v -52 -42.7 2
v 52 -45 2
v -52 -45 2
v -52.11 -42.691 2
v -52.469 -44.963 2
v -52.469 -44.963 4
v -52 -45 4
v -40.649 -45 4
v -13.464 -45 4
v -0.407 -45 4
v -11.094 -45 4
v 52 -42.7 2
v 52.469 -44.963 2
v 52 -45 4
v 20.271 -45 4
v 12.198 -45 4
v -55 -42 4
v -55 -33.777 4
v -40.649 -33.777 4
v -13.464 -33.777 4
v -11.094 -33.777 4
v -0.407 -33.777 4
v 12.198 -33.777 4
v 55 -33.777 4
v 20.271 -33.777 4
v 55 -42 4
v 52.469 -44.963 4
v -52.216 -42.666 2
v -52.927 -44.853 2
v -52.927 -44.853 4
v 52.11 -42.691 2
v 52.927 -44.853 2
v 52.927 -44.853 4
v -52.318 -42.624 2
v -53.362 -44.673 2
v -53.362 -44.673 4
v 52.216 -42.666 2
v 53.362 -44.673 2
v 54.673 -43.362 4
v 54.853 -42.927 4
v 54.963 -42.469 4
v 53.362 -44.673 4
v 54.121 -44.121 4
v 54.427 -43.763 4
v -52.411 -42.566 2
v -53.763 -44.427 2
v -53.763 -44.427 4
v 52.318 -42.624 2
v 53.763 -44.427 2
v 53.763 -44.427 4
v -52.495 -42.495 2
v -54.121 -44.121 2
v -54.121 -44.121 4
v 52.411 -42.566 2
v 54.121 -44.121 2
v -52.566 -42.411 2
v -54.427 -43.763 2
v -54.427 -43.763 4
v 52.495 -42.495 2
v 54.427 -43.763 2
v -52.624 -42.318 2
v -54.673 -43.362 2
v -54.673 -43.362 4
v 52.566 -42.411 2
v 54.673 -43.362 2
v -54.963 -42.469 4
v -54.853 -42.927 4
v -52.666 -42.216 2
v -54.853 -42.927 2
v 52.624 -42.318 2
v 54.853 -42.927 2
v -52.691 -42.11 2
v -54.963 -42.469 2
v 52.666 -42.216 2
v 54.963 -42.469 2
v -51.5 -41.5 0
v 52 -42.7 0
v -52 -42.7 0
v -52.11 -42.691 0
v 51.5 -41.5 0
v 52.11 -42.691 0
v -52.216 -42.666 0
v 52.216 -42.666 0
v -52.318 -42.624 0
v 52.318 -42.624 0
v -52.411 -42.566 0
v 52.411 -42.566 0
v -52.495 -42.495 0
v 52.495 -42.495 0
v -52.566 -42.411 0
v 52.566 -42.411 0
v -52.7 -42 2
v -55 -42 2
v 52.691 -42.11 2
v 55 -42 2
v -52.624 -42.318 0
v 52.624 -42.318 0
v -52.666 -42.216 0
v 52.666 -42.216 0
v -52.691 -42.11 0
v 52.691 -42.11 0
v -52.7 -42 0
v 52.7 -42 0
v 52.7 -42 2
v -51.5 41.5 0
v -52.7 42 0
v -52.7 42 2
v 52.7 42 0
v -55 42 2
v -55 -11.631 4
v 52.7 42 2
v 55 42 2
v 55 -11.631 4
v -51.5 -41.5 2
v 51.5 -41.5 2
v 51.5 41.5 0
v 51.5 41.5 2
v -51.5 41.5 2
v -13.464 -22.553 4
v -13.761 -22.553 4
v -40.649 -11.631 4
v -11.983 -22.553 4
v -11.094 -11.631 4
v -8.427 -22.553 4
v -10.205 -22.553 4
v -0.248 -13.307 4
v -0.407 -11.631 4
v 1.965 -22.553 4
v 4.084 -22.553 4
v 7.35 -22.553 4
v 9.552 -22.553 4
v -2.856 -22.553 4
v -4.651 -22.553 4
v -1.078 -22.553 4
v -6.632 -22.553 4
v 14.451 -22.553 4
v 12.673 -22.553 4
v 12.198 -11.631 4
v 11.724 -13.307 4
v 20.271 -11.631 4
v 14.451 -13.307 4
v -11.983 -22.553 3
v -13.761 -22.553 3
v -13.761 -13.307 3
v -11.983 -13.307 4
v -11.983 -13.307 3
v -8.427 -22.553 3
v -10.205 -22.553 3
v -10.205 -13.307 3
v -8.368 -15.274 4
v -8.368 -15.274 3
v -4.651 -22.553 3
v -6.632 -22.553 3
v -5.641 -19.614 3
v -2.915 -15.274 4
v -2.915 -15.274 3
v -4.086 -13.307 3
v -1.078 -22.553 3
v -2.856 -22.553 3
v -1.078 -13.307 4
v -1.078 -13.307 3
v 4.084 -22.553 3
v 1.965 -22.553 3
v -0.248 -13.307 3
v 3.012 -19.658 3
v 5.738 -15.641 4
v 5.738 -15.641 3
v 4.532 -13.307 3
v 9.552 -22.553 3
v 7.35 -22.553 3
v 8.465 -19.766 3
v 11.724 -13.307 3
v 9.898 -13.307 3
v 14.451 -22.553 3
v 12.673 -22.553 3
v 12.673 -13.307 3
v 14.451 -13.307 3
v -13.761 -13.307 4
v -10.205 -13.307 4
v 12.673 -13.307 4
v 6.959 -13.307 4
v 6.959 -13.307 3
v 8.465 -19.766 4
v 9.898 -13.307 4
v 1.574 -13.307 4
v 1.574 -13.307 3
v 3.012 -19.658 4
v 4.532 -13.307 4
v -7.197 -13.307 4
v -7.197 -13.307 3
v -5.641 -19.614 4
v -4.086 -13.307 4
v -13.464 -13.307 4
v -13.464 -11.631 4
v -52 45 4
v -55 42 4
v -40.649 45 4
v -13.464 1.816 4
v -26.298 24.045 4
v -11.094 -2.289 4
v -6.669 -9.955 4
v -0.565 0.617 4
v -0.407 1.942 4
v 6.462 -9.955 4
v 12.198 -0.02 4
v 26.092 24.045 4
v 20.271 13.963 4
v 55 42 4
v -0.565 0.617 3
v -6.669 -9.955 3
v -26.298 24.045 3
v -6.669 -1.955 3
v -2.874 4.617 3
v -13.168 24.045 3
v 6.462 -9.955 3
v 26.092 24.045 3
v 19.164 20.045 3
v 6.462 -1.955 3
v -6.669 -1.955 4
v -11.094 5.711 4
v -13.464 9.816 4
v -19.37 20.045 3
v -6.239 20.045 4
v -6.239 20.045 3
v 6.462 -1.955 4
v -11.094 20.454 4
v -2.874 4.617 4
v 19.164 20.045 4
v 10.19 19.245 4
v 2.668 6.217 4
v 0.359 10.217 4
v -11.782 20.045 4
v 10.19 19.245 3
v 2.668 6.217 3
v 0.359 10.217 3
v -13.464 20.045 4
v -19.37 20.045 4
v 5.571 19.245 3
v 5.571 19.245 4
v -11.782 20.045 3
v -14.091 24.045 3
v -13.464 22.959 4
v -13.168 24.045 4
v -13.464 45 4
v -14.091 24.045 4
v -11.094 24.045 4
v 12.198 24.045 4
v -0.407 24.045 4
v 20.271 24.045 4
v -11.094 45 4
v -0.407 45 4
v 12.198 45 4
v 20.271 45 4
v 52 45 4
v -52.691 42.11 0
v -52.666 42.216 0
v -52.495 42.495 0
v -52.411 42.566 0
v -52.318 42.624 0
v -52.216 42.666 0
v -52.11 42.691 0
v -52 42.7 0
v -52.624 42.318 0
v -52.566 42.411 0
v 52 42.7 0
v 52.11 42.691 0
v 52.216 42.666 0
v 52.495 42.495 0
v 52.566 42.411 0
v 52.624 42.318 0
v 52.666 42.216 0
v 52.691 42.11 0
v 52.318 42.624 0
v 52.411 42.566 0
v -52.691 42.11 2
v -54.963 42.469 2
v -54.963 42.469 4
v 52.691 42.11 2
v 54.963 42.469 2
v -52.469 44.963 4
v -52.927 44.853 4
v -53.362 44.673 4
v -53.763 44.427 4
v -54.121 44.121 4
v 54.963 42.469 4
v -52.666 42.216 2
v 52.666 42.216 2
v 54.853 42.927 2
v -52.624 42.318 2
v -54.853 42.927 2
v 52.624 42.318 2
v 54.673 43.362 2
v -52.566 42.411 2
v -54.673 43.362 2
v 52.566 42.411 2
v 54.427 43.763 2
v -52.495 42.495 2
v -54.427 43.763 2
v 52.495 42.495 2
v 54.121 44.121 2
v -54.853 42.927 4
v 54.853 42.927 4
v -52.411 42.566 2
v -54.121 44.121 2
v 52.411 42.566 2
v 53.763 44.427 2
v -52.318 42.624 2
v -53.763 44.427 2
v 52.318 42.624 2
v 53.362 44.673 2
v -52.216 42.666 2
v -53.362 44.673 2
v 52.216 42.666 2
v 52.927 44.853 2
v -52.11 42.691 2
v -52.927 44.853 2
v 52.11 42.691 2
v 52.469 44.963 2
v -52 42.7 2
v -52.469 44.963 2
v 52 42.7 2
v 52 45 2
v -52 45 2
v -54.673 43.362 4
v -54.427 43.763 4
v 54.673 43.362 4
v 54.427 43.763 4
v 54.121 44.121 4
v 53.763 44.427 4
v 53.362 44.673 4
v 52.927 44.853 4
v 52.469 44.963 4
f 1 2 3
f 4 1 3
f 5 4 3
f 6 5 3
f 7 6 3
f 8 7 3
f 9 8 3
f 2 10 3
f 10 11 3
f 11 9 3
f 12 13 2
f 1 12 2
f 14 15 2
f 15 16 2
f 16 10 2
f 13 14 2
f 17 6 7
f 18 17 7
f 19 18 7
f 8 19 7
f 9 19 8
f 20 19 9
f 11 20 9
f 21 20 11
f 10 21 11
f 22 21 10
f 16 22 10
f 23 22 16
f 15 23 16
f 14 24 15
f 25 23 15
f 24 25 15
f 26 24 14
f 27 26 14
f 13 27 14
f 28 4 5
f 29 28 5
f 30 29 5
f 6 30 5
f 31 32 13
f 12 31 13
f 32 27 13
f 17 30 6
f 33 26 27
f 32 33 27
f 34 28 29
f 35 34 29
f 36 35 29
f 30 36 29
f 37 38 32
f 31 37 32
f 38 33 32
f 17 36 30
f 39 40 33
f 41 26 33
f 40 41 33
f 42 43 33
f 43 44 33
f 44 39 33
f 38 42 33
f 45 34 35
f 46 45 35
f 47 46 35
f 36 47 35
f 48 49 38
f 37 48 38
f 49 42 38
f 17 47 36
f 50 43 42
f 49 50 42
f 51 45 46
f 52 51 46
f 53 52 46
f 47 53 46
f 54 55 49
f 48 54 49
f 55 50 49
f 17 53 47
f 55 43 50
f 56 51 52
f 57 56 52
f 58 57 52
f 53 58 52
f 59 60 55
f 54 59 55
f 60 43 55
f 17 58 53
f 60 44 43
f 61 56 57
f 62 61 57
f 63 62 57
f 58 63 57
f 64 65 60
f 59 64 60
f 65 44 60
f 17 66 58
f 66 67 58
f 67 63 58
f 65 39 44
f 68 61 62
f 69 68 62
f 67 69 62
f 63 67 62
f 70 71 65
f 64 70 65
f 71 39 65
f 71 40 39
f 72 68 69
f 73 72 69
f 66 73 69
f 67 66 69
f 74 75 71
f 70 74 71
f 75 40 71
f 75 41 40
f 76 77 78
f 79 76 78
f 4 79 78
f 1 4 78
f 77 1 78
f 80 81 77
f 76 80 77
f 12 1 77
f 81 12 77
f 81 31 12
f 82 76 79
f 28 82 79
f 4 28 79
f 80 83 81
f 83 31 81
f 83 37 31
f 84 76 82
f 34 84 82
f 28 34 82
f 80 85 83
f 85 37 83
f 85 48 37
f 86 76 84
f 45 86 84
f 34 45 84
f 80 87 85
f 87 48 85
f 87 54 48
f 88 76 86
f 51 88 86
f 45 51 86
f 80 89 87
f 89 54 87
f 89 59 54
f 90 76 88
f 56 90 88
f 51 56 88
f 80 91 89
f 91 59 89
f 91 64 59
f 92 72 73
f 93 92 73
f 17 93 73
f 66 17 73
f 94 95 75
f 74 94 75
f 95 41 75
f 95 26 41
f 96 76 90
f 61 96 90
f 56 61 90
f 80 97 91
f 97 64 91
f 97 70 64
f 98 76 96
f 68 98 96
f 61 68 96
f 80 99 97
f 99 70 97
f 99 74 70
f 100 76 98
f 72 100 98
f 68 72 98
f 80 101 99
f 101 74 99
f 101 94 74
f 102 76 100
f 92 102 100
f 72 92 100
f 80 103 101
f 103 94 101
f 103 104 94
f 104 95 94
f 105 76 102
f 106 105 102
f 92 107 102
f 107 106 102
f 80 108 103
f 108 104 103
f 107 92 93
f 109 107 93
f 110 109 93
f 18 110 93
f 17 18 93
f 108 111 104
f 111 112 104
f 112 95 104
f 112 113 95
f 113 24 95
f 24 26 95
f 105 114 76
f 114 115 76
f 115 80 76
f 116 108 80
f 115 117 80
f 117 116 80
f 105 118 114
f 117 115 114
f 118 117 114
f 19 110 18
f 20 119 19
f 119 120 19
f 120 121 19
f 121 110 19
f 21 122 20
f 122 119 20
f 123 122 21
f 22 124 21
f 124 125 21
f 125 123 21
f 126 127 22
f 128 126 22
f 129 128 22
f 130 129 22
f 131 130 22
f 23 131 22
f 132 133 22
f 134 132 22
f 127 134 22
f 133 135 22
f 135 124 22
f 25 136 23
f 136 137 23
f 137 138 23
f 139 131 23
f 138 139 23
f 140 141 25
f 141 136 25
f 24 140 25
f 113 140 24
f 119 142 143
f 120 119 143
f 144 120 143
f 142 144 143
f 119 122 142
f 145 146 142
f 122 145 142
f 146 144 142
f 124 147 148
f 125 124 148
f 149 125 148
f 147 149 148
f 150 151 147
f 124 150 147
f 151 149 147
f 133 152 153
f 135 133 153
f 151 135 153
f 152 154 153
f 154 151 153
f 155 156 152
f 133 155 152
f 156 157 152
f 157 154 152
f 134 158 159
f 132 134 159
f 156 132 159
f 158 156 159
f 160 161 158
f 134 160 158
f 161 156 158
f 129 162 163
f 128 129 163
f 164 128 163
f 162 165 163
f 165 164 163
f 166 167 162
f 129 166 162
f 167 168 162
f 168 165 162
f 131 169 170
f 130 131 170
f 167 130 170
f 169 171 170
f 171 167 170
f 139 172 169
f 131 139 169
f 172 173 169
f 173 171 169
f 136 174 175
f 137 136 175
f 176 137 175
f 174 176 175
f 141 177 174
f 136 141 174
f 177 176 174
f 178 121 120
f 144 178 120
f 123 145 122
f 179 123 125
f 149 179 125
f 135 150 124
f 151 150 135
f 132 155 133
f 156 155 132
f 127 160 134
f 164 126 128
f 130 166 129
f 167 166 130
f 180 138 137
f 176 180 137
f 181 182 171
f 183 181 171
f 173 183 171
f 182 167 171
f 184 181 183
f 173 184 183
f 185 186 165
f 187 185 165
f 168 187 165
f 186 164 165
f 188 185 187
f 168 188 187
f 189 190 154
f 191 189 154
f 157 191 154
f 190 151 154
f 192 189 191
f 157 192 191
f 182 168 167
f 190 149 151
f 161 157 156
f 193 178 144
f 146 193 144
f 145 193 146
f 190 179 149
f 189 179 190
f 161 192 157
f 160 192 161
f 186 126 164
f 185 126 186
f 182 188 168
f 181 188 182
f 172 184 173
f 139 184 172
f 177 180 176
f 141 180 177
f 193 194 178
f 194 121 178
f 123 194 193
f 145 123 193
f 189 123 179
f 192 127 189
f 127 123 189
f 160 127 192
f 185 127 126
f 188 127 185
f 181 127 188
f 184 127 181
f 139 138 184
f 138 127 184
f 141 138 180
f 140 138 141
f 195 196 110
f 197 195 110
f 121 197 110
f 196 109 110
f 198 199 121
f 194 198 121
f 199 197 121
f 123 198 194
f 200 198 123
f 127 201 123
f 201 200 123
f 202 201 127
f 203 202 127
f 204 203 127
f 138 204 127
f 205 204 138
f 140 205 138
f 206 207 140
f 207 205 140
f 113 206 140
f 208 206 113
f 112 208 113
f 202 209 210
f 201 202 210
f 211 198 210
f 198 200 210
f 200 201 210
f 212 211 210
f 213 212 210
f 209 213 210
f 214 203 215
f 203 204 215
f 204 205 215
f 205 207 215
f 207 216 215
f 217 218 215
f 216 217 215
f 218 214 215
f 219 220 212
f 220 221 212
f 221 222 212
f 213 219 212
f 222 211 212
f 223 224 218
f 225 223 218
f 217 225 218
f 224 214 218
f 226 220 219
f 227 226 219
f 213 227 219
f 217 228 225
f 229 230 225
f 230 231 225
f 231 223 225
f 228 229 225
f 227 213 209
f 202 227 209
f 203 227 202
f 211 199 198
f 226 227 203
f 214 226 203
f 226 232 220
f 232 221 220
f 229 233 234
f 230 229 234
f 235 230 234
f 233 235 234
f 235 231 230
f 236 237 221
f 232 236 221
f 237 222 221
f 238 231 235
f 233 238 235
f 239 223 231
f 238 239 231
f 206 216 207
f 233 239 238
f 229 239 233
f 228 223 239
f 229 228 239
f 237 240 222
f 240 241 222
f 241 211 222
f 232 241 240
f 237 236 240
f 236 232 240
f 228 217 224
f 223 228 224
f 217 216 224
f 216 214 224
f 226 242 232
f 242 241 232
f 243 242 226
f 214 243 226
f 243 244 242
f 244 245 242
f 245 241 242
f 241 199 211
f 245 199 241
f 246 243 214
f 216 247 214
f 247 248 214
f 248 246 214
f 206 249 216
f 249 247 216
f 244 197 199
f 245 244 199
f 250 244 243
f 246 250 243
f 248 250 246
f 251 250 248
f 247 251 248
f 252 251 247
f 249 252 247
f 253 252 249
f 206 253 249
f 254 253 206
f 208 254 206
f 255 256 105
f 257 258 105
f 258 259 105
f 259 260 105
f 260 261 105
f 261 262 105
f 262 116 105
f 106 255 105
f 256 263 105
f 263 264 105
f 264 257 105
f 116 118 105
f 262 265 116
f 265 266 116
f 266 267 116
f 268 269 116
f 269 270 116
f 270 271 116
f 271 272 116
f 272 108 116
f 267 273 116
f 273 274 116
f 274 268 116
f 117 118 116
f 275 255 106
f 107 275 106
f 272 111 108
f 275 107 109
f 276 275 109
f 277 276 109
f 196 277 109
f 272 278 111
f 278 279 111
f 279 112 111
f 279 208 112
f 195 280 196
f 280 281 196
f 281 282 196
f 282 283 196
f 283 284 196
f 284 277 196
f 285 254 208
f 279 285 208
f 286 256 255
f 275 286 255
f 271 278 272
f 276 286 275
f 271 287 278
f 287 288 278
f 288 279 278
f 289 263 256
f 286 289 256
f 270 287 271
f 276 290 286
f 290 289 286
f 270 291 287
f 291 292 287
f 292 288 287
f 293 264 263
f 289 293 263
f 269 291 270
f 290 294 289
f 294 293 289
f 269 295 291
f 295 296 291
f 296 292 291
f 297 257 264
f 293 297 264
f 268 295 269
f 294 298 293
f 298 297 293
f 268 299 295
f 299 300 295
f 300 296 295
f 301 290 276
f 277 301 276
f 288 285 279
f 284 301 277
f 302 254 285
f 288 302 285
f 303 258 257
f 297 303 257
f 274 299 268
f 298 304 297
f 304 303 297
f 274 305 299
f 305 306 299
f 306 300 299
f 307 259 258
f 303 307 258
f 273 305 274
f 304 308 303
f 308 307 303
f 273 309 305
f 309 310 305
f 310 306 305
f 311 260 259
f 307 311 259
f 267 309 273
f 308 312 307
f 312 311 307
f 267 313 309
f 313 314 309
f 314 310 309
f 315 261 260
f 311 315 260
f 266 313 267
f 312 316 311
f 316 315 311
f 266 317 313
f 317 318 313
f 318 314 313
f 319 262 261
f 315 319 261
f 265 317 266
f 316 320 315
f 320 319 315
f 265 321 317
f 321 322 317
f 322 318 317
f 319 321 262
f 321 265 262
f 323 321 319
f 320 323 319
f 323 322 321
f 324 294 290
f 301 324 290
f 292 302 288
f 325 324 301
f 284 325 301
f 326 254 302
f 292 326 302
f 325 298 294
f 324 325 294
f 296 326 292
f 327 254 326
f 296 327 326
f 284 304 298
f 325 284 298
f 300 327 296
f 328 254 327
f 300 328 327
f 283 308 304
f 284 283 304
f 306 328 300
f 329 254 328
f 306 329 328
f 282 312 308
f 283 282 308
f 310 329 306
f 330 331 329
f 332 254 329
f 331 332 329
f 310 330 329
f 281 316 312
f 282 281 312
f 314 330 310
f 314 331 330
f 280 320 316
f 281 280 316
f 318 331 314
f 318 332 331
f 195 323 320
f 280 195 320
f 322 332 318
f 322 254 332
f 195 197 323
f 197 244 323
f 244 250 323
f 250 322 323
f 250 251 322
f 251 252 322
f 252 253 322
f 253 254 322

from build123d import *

# Parameters (mm, degrees)
SKETCH1_W           = 103
SKETCH1_H           = 83
BOSS_EXTRUDE1_DEPTH = 2
BOSS_EXTRUDE3_DEPTH = 2
CUT_EXTRUDE1_DEPTH  = 1
SKETCH5_W           = 1.778066781
SKETCH5_H           = 9.245947266
SKETCH5_W_2         = 1.778066782
CUT_EXTRUDE2_DEPTH  = 1


with BuildPart() as part:
    # Sketch1 → Boss-Extrude1 (new body)
    with BuildSketch(Plane.XY):
        with BuildLine():
            Line((-52.7, 42), (-52.7, -42))
            ThreePointArc((-52.7, -42), (-52.494974747, -42.494974747), (-52, -42.7))
            Line((-52, -42.7), (52, -42.7))
            ThreePointArc((52, -42.7), (52.494974747, -42.494974747), (52.7, -42))
            Line((52.7, -42), (52.7, 42))
            ThreePointArc((52.7, 42), (52.494974747, 42.494974747), (52, 42.7))
            Line((52, 42.7), (-52, 42.7))
            ThreePointArc((-52, 42.7), (-52.494974747, 42.494974747), (-52.7, 42))
        make_face()
        Rectangle(SKETCH1_W, SKETCH1_H, mode=Mode.SUBTRACT)
    extrude(amount=BOSS_EXTRUDE1_DEPTH)

    # Sketch3 → Boss-Extrude3 (add)
    with BuildSketch(Plane.XY.offset(2)):
        with BuildLine():
            Line((52, 45), (-52, 45))
            ThreePointArc((-52, 45), (-54.121320344, 44.121320344), (-55, 42))
            Line((-55, 42), (-55, -42))
            ThreePointArc((-55, -42), (-54.121320344, -44.121320344), (-52, -45))
            Line((-52, -45), (52, -45))
            ThreePointArc((52, -45), (54.121320344, -44.121320344), (55, -42))
            Line((55, -42), (55, 42))
            ThreePointArc((55, 42), (54.121320344, 44.121320344), (52, 45))
        make_face()
    extrude(amount=BOSS_EXTRUDE3_DEPTH)

    # Sketch4 → Cut-Extrude1 (cut)
    # profile 1 of 3: a face of its own
    with BuildSketch(Plane.XY.offset(4)):
        Polygon((12.961332904, 24.04515047), (-13.167559701, 24.04515047), (6.462349451, -9.95484953), (26.092258604, 24.04515047), align=None)
        Polygon((-6.239356471, 20.04515047), (6.033129674, 20.04515047), (19.164055373, 20.04515047), (6.462349451, -1.95484953), align=None, mode=Mode.SUBTRACT)
    # profile 2 of 3: a face of its own
    with BuildSketch(Plane.XY.offset(4)):
        Polygon((0.358766817, 10.216865701), (5.571249459, 19.24515047), (10.190051612, 19.24515047), (2.668167894, 6.216865701), align=None)
    # profile 3 of 3: a face of its own
    with BuildSketch(Plane.XY.offset(4)):
        Polygon((-14.091320132, 24.04515047), (-11.781919055, 20.04515047), (-19.37028217, 20.04515047), (-6.668576248, -1.95484953), (-2.874394691, 4.616865701), (-0.564993614, 0.616865701), (-6.668576248, -9.95484953), (-26.298485401, 24.04515047), align=None)
    extrude(amount=-CUT_EXTRUDE1_DEPTH, mode=Mode.SUBTRACT)

    # Sketch5 → Cut-Extrude2 (cut)
    with BuildSketch(Plane.XY.offset(4)):
        with Locations((-12.872296082, -17.930038178)):
            Rectangle(SKETCH5_W, SKETCH5_H)
        Polygon((-10.205195909, -22.553011811), (-10.205195909, -13.307064545), (-7.197299603, -13.307064545), (-5.641491169, -19.613645162), (-4.085682735, -13.307064545), (-1.077786429, -13.307064545), (-1.077786429, -22.553011811), (-2.85585321, -22.553011811), (-2.915122103, -15.274050923), (-4.650589368, -22.553011811), (-6.632392969, -22.553011811), (-8.367860234, -15.274050923), (-8.427129127, -22.553011811), align=None)
        Polygon((1.965300782, -22.553011811), (-0.24802193, -13.307064545), (1.574496521, -13.307064545), (3.01176717, -19.658096832), (4.532384699, -13.307064545), (6.958704995, -13.307064545), (8.464505301, -19.7655217), (9.898071644, -13.307064545), (11.724294401, -13.307064545), (9.551719052, -22.553011811), (7.349509256, -22.553011811), (5.738136235, -15.640777196), (4.084163698, -22.553011811), align=None)
        with Locations((13.561630075, -17.930038178)):
            Rectangle(SKETCH5_W_2, SKETCH5_H)
    extrude(amount=-CUT_EXTRUDE2_DEPTH, mode=Mode.SUBTRACT)


solid = part.part
